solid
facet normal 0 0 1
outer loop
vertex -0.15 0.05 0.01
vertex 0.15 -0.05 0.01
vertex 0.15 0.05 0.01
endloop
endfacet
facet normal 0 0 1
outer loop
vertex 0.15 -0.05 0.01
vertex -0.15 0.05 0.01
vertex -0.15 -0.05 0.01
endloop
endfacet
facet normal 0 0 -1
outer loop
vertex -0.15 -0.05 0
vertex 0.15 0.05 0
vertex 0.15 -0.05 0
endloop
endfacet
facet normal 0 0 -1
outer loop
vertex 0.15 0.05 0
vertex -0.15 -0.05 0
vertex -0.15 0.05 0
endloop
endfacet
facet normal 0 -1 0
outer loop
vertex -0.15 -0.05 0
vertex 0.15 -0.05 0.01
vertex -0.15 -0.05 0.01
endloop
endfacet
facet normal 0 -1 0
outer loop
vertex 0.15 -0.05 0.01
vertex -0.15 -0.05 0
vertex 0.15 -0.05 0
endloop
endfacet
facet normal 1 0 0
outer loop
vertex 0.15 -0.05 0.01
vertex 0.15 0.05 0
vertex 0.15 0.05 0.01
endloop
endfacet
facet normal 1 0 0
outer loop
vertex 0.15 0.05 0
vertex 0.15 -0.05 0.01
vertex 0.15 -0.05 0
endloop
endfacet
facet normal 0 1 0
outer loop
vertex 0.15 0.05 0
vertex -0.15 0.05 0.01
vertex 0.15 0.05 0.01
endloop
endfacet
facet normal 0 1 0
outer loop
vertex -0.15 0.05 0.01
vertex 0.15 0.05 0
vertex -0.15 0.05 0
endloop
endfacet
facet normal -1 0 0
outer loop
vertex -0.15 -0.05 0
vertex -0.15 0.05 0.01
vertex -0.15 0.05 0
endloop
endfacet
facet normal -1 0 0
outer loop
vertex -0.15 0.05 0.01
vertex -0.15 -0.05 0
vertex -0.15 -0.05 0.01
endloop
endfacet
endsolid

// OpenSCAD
z_size = 0.01;
// eps = 0.01;
// cell_size = 0.005;

chan_length = 0.3;
chan_width = 0.1;

translate([-chan_length/2, -chan_width/2, 0]) 
    cube([chan_length, chan_width, z_size]);

// color("blue") translate([0, 0, 0.005]) sphere(r=0.01, $fn=100);
